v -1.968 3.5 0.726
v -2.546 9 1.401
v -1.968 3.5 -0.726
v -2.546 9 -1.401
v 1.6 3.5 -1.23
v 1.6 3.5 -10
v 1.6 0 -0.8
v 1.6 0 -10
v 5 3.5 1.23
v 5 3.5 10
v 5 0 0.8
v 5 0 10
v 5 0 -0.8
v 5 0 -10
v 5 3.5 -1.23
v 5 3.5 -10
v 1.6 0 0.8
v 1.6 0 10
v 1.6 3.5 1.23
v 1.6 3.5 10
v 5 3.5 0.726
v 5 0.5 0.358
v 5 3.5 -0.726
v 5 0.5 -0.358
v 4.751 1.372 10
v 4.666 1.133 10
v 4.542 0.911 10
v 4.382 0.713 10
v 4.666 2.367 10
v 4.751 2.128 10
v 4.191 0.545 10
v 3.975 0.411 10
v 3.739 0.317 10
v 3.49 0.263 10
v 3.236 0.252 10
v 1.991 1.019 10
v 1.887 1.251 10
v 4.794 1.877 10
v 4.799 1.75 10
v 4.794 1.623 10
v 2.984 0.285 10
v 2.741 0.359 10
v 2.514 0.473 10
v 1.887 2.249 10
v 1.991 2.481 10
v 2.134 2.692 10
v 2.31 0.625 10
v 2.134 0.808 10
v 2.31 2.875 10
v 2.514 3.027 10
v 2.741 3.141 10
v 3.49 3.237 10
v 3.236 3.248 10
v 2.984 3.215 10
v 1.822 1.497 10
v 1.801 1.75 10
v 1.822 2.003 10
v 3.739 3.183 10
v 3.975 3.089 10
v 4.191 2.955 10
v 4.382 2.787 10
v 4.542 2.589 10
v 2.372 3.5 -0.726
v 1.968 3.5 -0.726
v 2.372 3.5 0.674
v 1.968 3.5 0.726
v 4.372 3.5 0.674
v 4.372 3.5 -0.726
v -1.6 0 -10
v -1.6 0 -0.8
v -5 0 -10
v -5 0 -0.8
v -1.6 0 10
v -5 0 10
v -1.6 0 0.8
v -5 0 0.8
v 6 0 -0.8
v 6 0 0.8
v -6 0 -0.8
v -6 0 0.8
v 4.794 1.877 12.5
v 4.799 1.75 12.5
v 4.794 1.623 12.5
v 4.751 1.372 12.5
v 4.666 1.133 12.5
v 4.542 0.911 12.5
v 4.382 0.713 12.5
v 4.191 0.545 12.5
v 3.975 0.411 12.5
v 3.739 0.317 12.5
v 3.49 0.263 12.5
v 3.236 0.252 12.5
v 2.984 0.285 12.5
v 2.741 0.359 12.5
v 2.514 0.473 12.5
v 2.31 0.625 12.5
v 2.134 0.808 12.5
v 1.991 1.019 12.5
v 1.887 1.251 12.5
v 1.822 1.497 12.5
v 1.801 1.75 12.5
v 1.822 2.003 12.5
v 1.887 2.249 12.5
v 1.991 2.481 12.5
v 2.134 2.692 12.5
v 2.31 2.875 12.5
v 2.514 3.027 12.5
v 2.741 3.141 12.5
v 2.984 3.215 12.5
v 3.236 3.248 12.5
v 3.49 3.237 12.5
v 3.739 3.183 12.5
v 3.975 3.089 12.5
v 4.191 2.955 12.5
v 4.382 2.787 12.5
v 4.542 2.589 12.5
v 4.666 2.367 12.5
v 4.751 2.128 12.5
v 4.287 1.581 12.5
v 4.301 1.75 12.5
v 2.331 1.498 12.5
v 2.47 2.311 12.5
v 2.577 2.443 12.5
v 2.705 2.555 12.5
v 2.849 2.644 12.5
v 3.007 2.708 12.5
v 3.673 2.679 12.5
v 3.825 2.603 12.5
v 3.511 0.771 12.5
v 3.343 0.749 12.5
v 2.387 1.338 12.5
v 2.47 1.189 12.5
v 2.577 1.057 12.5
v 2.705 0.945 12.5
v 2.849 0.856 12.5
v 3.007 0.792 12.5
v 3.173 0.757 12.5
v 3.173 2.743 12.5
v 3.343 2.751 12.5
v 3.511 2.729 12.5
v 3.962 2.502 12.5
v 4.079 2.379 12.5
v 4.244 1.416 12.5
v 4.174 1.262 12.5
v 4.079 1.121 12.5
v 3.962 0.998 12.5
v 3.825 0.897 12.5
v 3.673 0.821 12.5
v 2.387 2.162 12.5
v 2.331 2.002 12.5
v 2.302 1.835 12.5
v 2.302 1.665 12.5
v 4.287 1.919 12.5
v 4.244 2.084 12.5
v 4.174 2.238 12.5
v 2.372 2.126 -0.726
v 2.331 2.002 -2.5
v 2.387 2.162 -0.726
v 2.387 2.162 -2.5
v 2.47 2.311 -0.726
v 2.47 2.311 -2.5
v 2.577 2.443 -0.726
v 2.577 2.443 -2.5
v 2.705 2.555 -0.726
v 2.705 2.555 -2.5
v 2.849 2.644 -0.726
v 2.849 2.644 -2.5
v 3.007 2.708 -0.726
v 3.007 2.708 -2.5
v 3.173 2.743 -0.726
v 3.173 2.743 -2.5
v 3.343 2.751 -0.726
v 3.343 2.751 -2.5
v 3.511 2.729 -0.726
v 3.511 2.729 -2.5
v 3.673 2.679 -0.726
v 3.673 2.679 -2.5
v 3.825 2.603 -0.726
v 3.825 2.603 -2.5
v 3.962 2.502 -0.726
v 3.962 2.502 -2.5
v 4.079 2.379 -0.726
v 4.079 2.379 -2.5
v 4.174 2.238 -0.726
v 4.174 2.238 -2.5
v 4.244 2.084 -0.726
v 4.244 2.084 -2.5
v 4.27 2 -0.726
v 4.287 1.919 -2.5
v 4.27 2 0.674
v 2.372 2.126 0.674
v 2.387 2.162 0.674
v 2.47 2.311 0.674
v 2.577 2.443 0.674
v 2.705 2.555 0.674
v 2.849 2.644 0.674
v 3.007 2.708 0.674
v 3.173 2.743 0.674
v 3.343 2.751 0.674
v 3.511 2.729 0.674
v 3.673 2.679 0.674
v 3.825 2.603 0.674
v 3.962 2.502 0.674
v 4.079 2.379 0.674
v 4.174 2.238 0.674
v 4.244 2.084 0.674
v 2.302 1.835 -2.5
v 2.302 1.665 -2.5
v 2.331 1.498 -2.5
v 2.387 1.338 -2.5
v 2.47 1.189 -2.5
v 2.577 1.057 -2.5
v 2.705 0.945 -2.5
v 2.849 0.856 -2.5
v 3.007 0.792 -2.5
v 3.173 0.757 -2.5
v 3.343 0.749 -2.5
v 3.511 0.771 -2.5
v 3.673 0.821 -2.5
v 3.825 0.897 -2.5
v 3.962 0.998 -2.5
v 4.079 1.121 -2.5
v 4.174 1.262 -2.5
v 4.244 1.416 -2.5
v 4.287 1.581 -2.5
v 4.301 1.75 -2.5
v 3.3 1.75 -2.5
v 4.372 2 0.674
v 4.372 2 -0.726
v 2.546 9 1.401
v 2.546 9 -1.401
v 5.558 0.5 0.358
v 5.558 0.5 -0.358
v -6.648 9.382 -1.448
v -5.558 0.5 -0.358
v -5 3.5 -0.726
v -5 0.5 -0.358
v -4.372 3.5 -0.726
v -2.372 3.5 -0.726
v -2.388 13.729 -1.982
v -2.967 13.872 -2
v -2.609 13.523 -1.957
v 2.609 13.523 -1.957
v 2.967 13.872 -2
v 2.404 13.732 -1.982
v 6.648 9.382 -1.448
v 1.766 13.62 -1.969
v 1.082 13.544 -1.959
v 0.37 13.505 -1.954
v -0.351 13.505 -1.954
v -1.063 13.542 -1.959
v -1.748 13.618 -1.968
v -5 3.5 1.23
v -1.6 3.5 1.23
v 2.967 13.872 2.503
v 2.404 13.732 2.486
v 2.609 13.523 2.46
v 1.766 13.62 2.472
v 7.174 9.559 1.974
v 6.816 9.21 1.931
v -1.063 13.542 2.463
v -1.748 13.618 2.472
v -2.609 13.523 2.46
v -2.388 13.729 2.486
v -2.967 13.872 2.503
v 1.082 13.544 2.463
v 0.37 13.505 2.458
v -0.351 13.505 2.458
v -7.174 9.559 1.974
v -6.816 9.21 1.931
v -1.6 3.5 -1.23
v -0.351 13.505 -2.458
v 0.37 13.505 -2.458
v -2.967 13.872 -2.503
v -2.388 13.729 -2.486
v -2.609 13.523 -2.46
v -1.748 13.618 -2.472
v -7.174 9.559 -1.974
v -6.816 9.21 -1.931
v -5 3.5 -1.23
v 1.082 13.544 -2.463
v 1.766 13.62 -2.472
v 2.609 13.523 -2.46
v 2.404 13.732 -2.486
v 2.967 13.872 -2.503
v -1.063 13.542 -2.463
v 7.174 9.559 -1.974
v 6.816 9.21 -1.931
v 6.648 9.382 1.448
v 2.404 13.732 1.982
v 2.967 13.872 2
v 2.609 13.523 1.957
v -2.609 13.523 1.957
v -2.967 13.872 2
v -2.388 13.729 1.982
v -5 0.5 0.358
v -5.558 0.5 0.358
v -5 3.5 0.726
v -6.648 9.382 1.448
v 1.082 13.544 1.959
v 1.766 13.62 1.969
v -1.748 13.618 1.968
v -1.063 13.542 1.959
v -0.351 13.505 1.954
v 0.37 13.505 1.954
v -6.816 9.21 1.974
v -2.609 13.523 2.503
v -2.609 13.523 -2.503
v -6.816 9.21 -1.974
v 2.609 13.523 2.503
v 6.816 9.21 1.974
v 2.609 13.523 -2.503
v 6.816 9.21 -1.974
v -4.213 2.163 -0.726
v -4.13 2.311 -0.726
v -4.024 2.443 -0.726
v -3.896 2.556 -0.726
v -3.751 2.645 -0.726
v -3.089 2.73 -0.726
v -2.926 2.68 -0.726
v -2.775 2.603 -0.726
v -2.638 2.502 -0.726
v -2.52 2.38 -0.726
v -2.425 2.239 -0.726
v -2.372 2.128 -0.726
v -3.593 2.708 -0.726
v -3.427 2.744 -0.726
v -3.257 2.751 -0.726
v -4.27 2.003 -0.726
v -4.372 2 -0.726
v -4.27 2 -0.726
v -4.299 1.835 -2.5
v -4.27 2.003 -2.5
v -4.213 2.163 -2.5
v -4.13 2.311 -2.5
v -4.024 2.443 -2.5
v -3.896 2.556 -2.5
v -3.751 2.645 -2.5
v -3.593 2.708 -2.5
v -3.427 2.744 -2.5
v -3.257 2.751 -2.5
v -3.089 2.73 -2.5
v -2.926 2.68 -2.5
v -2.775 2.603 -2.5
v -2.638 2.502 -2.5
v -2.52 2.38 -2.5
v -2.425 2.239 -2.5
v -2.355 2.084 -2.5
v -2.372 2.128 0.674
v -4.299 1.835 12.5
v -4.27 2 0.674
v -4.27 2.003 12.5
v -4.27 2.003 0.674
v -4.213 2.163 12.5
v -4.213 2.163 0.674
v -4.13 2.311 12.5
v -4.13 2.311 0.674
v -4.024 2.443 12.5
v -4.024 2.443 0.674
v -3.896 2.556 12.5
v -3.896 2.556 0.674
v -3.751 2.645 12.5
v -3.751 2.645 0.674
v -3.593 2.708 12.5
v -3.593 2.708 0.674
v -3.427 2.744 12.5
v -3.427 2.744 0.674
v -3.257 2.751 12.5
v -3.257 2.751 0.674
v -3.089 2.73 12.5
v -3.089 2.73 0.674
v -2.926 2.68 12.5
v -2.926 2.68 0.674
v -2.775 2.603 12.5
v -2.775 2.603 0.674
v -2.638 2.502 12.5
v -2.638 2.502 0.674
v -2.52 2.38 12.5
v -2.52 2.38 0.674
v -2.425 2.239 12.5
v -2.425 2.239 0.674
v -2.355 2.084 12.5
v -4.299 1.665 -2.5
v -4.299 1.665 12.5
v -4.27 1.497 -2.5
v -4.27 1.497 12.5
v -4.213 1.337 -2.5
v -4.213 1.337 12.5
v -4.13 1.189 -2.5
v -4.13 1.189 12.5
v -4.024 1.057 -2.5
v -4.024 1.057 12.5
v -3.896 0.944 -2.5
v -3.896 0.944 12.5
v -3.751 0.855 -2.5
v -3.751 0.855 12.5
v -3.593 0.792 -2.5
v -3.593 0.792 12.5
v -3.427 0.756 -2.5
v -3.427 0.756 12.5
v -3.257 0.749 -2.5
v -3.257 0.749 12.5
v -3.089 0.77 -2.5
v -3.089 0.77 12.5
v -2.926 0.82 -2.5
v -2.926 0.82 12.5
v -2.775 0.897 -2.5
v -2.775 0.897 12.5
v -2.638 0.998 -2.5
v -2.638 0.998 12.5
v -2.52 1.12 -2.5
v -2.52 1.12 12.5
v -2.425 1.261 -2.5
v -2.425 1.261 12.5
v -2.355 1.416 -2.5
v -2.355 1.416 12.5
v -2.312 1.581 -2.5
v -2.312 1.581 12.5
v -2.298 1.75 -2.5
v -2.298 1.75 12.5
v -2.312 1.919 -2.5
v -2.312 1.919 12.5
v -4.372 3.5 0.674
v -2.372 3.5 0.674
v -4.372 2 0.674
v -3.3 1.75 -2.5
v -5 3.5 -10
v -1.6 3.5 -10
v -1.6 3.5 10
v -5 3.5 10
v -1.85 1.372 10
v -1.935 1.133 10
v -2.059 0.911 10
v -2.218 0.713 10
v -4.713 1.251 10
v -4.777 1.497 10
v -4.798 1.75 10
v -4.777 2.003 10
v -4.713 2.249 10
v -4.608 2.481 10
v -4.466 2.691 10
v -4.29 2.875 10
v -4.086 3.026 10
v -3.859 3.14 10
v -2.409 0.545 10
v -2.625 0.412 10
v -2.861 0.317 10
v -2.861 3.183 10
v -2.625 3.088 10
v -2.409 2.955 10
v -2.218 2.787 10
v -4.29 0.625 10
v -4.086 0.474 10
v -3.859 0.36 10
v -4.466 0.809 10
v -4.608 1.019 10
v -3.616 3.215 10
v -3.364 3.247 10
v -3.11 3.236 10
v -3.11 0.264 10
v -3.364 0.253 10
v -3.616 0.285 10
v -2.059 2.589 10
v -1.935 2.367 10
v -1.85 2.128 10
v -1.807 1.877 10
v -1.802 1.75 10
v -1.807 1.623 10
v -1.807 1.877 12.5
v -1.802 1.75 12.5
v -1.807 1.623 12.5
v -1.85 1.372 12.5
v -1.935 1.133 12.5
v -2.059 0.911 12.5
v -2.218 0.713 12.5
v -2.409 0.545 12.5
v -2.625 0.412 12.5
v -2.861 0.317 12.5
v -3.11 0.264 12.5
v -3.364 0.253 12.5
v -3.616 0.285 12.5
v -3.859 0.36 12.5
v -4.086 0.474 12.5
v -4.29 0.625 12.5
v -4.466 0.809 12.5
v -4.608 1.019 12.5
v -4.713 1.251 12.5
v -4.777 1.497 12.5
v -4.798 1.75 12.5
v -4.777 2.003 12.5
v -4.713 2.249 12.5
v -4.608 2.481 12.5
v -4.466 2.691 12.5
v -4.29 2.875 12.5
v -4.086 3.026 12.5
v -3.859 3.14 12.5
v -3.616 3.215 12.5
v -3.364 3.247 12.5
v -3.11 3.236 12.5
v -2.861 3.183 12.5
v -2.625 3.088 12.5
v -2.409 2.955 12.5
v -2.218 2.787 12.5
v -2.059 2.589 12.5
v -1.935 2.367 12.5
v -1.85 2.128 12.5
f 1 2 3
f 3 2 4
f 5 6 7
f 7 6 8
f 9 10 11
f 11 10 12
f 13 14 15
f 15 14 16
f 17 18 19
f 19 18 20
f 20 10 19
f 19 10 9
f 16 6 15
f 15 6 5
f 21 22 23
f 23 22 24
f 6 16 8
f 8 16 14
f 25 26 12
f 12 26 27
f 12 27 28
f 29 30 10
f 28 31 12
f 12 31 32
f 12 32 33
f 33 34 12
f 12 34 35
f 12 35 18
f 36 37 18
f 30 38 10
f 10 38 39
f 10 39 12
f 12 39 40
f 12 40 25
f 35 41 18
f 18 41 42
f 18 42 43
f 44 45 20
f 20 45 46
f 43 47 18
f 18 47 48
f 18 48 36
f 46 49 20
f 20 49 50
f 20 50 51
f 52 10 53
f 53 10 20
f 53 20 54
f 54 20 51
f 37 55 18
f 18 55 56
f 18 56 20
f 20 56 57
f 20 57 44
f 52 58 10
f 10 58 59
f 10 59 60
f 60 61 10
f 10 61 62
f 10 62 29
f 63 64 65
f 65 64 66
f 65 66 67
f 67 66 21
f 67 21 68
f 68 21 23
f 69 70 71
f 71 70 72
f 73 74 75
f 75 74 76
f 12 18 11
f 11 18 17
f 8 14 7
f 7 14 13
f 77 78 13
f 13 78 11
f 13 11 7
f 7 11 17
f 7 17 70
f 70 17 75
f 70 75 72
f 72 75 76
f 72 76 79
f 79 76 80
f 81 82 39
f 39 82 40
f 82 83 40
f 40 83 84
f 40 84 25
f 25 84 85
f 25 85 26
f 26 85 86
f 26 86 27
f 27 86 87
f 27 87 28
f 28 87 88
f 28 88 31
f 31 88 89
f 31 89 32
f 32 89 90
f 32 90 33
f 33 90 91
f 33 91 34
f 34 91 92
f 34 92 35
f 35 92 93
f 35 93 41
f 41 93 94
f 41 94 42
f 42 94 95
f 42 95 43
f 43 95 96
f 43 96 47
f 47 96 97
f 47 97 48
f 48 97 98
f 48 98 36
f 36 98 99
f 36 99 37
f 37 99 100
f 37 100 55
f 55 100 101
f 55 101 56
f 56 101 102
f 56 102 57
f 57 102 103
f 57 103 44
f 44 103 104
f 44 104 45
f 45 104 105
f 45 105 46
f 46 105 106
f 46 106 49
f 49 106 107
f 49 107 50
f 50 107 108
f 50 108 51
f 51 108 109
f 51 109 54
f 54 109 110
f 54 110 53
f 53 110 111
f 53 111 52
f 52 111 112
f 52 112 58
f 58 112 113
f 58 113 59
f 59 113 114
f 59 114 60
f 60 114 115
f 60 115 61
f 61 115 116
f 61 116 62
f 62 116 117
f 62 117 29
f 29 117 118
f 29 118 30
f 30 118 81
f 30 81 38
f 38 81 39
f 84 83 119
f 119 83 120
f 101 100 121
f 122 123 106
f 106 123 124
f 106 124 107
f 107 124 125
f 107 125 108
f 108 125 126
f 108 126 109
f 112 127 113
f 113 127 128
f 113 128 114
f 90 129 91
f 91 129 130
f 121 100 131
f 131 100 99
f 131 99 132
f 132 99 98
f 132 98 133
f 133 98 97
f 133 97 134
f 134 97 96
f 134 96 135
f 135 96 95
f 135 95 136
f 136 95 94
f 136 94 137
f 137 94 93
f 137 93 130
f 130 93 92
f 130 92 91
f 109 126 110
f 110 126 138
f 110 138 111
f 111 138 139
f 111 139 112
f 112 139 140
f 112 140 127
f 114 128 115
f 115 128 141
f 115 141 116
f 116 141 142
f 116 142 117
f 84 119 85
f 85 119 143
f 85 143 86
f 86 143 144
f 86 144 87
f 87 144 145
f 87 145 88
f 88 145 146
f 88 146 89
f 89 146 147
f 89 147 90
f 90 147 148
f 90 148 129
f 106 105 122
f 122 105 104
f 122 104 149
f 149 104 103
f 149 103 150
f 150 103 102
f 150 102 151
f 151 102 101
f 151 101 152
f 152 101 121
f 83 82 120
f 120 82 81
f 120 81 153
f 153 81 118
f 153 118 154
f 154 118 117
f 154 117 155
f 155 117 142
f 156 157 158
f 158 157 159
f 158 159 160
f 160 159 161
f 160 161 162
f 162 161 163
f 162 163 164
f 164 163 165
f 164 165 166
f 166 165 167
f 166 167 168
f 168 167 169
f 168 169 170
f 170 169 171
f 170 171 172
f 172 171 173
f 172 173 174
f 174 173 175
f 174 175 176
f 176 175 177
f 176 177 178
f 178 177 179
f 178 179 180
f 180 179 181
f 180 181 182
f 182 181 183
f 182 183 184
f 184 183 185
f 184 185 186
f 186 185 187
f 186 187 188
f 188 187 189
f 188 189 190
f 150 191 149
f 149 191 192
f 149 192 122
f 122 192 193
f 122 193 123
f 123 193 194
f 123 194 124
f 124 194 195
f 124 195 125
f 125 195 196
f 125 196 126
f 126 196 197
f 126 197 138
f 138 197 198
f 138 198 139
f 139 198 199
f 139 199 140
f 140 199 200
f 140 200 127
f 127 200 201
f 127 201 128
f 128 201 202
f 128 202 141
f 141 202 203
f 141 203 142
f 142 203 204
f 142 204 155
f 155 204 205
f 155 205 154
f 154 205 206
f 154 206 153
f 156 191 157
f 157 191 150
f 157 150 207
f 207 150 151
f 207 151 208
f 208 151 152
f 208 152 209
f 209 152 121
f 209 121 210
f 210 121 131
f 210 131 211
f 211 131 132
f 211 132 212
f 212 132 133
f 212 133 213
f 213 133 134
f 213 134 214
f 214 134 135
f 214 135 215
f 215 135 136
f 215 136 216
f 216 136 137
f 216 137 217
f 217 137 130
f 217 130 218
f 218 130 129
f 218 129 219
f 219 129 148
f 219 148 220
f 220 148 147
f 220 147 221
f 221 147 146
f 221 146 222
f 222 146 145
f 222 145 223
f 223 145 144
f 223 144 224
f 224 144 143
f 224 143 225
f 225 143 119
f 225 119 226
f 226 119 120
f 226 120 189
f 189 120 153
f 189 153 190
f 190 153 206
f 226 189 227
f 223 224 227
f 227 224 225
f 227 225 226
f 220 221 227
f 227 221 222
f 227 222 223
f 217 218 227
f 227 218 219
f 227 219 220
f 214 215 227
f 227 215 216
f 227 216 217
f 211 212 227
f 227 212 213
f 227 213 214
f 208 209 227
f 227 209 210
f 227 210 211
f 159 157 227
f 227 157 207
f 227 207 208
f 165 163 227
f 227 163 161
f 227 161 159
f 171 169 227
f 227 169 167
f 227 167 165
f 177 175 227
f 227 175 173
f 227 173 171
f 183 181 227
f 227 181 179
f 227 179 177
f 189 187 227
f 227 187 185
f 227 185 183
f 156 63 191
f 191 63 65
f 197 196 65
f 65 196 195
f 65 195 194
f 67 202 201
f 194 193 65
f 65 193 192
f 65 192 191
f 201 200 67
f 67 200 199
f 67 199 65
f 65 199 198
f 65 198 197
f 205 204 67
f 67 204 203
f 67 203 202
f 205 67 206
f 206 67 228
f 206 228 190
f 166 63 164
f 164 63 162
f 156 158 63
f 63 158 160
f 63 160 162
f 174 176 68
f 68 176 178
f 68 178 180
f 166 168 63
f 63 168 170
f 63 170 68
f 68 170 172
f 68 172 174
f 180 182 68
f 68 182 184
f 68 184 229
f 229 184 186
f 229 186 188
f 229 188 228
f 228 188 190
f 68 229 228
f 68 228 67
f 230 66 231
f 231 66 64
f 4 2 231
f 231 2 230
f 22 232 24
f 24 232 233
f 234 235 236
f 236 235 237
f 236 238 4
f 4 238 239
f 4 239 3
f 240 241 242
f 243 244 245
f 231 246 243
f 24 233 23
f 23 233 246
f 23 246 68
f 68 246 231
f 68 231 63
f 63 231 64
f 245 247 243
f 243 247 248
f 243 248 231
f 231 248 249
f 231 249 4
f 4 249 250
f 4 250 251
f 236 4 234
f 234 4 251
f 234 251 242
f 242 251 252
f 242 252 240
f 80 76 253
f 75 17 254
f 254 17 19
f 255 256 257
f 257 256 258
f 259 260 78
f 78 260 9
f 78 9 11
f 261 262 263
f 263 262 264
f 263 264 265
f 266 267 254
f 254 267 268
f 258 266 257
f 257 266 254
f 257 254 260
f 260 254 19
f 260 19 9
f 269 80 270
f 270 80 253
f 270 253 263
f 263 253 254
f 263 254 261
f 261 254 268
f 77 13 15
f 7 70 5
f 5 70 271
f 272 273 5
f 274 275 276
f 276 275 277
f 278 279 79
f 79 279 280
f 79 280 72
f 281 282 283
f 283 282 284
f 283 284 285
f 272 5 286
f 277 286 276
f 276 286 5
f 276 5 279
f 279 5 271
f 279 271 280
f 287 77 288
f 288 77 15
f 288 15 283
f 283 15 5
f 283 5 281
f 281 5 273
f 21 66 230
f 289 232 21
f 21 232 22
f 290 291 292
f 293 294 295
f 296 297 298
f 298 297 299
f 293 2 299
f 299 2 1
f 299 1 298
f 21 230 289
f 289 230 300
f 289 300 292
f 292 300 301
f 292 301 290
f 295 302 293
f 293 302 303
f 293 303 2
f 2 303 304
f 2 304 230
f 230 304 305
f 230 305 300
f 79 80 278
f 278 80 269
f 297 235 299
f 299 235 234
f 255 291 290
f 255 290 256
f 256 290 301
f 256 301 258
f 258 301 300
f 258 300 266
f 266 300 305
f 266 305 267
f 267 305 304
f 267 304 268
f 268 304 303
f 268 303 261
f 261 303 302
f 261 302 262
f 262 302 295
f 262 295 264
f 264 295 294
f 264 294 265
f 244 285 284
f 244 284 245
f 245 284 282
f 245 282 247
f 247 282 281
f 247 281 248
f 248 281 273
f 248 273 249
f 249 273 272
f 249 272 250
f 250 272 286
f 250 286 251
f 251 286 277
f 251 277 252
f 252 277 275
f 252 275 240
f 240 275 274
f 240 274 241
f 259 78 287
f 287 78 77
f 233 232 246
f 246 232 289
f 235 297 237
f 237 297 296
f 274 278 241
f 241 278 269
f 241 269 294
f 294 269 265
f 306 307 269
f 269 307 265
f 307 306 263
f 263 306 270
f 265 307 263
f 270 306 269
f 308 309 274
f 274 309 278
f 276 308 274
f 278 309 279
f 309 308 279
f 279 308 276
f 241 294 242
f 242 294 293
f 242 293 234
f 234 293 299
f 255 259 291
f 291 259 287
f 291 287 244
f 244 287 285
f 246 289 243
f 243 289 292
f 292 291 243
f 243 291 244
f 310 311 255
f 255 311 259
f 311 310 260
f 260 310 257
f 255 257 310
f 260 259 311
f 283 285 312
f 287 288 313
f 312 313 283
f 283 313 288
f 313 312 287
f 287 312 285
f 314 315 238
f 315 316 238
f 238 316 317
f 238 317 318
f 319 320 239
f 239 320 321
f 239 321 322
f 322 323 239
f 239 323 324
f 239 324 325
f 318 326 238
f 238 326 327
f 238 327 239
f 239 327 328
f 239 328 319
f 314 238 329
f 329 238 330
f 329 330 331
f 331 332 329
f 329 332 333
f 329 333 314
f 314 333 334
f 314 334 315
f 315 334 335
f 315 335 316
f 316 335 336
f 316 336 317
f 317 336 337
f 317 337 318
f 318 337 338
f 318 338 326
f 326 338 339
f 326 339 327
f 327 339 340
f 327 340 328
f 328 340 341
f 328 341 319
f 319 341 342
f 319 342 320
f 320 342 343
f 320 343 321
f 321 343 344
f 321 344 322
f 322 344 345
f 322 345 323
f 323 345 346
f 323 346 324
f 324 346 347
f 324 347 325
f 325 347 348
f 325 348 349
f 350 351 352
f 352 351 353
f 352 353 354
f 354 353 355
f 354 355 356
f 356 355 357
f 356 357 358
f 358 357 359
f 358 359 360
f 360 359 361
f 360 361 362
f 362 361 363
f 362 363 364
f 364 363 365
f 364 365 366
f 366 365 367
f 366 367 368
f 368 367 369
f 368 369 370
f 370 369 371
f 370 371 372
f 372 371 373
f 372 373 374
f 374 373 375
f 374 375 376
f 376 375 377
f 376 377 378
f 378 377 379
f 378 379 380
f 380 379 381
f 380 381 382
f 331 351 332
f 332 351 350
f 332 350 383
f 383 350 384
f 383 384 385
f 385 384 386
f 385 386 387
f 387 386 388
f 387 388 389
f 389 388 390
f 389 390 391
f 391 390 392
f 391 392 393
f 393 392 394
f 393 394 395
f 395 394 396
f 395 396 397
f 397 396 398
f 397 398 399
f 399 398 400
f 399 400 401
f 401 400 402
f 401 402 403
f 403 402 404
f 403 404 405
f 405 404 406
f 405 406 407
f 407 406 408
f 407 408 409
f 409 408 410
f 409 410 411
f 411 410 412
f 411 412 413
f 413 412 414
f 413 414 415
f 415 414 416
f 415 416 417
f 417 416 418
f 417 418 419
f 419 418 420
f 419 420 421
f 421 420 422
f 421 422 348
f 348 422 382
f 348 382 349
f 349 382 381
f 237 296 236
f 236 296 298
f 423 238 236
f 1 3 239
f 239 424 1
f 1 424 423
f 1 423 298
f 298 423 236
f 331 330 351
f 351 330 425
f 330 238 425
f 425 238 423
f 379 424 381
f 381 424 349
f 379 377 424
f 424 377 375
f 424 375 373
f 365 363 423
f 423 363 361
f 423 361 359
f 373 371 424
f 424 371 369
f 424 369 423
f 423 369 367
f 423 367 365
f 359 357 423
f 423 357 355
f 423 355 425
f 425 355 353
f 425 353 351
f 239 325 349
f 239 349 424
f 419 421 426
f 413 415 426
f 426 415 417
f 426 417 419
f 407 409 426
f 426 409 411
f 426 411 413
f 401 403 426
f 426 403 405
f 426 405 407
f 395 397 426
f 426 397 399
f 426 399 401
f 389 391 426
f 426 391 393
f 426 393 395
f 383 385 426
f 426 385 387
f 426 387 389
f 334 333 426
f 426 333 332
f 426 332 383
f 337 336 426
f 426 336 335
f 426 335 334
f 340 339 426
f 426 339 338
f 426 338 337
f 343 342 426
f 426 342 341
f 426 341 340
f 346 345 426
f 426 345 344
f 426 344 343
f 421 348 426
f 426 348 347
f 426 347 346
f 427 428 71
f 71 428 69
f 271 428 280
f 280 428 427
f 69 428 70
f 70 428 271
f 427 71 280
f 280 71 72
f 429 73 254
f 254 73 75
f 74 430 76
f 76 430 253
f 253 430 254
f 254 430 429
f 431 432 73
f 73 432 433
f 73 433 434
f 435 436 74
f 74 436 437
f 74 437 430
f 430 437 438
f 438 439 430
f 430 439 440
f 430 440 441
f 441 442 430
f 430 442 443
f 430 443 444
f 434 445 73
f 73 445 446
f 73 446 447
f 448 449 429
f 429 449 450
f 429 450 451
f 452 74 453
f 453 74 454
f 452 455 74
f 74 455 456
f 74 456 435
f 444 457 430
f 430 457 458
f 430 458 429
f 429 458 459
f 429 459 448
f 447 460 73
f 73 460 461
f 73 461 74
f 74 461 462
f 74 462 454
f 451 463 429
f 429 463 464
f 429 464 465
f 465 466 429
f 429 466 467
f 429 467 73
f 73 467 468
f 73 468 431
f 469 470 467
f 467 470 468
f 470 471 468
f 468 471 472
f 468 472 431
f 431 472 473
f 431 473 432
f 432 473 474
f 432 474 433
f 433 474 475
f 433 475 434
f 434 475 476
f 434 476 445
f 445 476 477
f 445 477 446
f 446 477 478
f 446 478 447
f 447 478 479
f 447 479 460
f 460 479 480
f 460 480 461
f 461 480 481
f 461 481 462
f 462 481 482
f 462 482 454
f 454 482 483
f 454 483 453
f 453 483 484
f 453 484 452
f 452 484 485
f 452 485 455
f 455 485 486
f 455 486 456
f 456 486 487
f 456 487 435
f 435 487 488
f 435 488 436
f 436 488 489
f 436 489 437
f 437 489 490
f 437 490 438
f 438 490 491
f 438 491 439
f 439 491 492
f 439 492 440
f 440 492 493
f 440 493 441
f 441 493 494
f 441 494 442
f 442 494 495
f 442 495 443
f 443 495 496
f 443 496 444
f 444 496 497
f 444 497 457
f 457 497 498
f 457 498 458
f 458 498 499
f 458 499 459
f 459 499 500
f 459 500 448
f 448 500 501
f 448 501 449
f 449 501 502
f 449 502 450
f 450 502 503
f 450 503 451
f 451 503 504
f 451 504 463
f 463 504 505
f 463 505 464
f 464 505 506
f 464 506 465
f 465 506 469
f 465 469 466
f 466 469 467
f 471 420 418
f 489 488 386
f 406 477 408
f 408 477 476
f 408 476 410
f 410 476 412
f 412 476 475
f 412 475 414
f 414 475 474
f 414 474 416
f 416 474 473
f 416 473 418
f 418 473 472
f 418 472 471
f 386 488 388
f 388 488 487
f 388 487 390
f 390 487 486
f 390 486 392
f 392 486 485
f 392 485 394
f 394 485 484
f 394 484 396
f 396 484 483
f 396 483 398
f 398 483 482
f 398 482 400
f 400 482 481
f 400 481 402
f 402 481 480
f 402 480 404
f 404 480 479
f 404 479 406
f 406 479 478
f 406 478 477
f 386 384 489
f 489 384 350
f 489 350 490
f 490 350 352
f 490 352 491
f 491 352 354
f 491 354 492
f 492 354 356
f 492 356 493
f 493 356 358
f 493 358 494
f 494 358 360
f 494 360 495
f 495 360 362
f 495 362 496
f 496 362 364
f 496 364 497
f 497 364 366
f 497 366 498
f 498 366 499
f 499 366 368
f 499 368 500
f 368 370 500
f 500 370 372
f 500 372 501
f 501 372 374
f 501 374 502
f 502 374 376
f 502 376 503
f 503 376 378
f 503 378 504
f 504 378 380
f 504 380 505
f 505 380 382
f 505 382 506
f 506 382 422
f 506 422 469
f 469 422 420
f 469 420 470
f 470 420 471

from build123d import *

# Parameters (mm, degrees)
SKETCH1_W                = 12
SKETCH1_H                = 1.6
BOSS_EXTRUDE1_DEPTH      = 15
BOSS_EXTRUDE1_TAPER      = -7
SHELL1_T                 = -0.5
SKETCH6_W                = 3.4
SKETCH6_H                = 20
BOSS_EXTRUDE2_DEPTH      = 3.5
BOSS_EXTRUDE2_2_DEPTH    = 3.5
CUT_EXTRUDE11_DEPTH      = 10
CUT_EXTRUDE11_DEPTH_BACK = 10
SKETCH11_RX              = 4.5
SKETCH11_RY              = 1.5
CUT_EXTRUDE12_DEPTH      = 10
BOSS_EXTRUDE3_DEPTH      = 0.5
SKETCH20_R               = 1.499118307
BOSS_EXTRUDE4_DEPTH      = 2.5
SKETCH22_R               = 1.001403974
CUT_EXTRUDE13_DEPTH      = 15
SKETCH25_W               = 2
SKETCH25_H               = 1.4
CUT_EXTRUDE14_DEPTH      = 1.5
SKETCH28_R               = 1.498355692
BOSS_EXTRUDE5_DEPTH      = 2.5
SKETCH29_R               = 1.002174376
CUT_EXTRUDE15_DEPTH      = 15
SKETCH30_W               = 3.2
SKETCH30_H               = 1.6
BOSS_EXTRUDE6_DEPTH      = 9
BOSS_EXTRUDE6_TAPER      = -6


with BuildPart() as part:
    # Sketch1 → Boss-Extrude1 (new body)
    with BuildSketch(Plane(origin=(0, 0, 0), x_dir=(1, 0, 0), z_dir=(0, 1, 0))):
        Rectangle(SKETCH1_W, SKETCH1_H)
    extrude(amount=BOSS_EXTRUDE1_DEPTH, taper=BOSS_EXTRUDE1_TAPER)

    # Shell1
    shell1_openings = [part.faces().sort_by_distance(p)[0] for p in [
        (0, 15, 0),
    ]]
    offset(amount=SHELL1_T, openings=shell1_openings, kind=Kind.INTERSECTION)

    # Sketch11 → Cut-Extrude11 (cut, two sides: drawn at the far end of the back side and taken through both)
    with BuildSketch(Plane.XY.offset(-CUT_EXTRUDE11_DEPTH_BACK)):
        with Locations((0, 15)):
            Ellipse(SKETCH11_RX, SKETCH11_RY)
    extrude(amount=CUT_EXTRUDE11_DEPTH + CUT_EXTRUDE11_DEPTH_BACK, mode=Mode.SUBTRACT)

    # Sketch18 → Cut-Extrude12 (cut, symmetric)
    with BuildSketch(Plane.XY):
        Polygon((-2.966549011, 13.872092056), (-7.173702506, 9.559039808), (-8.984967274, 15.813419698), (-2.966549011, 15.813419698), align=None)
    cut_extrude12 = extrude(amount=CUT_EXTRUDE12_DEPTH, both=True, mode=Mode.SUBTRACT)

    # Sketch19 → Boss-Extrude3 (add)
    with BuildSketch(Plane(origin=(-8.45404379, 8.246470904, 0), x_dir=(0, 0, 1), z_dir=(-0.7158402135047951, 0.6982641253346826, 0))):
        Polygon((1.973702506, 1.833605992), (2.503278732, 7.858766589), (-2.503278732, 7.858766589), (-1.973702506, 1.833605992), align=None)
    boss_extrude3 = extrude(amount=-BOSS_EXTRUDE3_DEPTH)

    # Mirror3: Boss-Extrude3 across plane
    add(boss_extrude3.mirror(Plane(origin=(0, 0, 0), x_dir=(0, 0, 1), z_dir=(1, 0, 0))))


with BuildPart() as body_2:
    # Sketch6 → Boss-Extrude2 (new body)
    with BuildSketch(Plane.XZ):
        with Locations((-3.3, 0)):
            Rectangle(SKETCH6_W, SKETCH6_H)
    extrude(amount=-BOSS_EXTRUDE2_DEPTH)


with BuildPart() as body_3:
    # Sketch6 → Boss-Extrude2 2 (new body)
    with BuildSketch(Plane.XZ):
        with Locations((3.3, 0)):
            Rectangle(SKETCH6_W, SKETCH6_H)
    extrude(amount=-BOSS_EXTRUDE2_2_DEPTH)

    # Sketch20 → Boss-Extrude4 (add)
    with BuildSketch(Plane.XY.offset(10)):
        with Locations((3.3, 1.75)):
            Circle(SKETCH20_R)
    extrude(amount=BOSS_EXTRUDE4_DEPTH)


with BuildPart() as cut_extrude13_tool:
    # Sketch22 → Cut-Extrude13 (new body)
    with BuildSketch(Plane.XY.offset(12.5)):
        with Locations((3.3, 1.75)):
            Circle(SKETCH22_R)
    extrude(amount=-CUT_EXTRUDE13_DEPTH)


with BuildPart() as part_1:
    add(part.part)

    # Cut-Extrude13: cut by cut_extrude13_tool
    add(cut_extrude13_tool.part, mode=Mode.SUBTRACT)


with BuildPart() as body_3_1:
    add(body_3.part)

    # Cut-Extrude13: cut by cut_extrude13_tool
    add(cut_extrude13_tool.part, mode=Mode.SUBTRACT)


with BuildPart() as cut_extrude14_tool:
    # Sketch25 → Cut-Extrude14 (new body)
    with BuildSketch(Plane(origin=(0, 3.5, 0), x_dir=(1, 0, 0), z_dir=(0, 1, 0))):
        with Locations((-3.371950412, 0.026080252)):
            Rectangle(SKETCH25_W, SKETCH25_H)
    cut_extrude14 = extrude(amount=-CUT_EXTRUDE14_DEPTH)


with BuildPart() as part_2:
    add(part_1.part)

    # Cut-Extrude14: cut by cut_extrude14_tool
    add(cut_extrude14_tool.part, mode=Mode.SUBTRACT)


with BuildPart() as body_2_1:
    add(body_2.part)

    # Cut-Extrude14: cut by cut_extrude14_tool
    add(cut_extrude14_tool.part, mode=Mode.SUBTRACT)

    # Sketch28 → Boss-Extrude5 (add)
    with BuildSketch(Plane.XY.offset(10)):
        with Locations((-3.3, 1.75)):
            Circle(SKETCH28_R)
    extrude(amount=BOSS_EXTRUDE5_DEPTH)


with BuildPart() as mirror6_tool:
    # Mirror6: Cut-Extrude14 across plane
    add(cut_extrude14.mirror(Plane(origin=(0, 0, 0), x_dir=(0, 0, 1), z_dir=(1, 0, 0))))


with BuildPart() as part_3:
    add(part_2.part)

    # Mirror6: cut by mirror6_tool
    add(mirror6_tool.part, mode=Mode.SUBTRACT)


with BuildPart() as body_3_2:
    add(body_3_1.part)

    # Mirror6: cut by mirror6_tool
    add(mirror6_tool.part, mode=Mode.SUBTRACT)


with BuildPart() as cut_extrude15_tool:
    # Sketch29 → Cut-Extrude15 (new body)
    with BuildSketch(Plane.XY.offset(12.5)):
        with Locations((-3.3, 1.75)):
            Circle(SKETCH29_R)
    extrude(amount=-CUT_EXTRUDE15_DEPTH)


with BuildPart() as part_4:
    add(part_3.part)

    # Cut-Extrude15: cut by cut_extrude15_tool
    add(cut_extrude15_tool.part, mode=Mode.SUBTRACT)



with BuildPart() as body_2_2:
    add(body_2_1.part)

    # Cut-Extrude15: cut by cut_extrude15_tool
    add(cut_extrude15_tool.part, mode=Mode.SUBTRACT)


with BuildPart() as part_5:
    add(part_4.part)

    add(body_2_2.part)  # Boss-Extrude6 merges body 2

    add(body_3_2.part)  # Boss-Extrude6 merges body 3
    # Sketch30 → Boss-Extrude6 (add)
    with BuildSketch(Plane.XZ):
        Rectangle(SKETCH30_W, SKETCH30_H)
    extrude(amount=-BOSS_EXTRUDE6_DEPTH, taper=BOSS_EXTRUDE6_TAPER)

    # Mirror7: Cut-Extrude12 across plane
    add(cut_extrude12.mirror(Plane(origin=(0, 0, 0), x_dir=(0, 0, 1), z_dir=(1, 0, 0))), mode=Mode.SUBTRACT)


solid = part_5.part
